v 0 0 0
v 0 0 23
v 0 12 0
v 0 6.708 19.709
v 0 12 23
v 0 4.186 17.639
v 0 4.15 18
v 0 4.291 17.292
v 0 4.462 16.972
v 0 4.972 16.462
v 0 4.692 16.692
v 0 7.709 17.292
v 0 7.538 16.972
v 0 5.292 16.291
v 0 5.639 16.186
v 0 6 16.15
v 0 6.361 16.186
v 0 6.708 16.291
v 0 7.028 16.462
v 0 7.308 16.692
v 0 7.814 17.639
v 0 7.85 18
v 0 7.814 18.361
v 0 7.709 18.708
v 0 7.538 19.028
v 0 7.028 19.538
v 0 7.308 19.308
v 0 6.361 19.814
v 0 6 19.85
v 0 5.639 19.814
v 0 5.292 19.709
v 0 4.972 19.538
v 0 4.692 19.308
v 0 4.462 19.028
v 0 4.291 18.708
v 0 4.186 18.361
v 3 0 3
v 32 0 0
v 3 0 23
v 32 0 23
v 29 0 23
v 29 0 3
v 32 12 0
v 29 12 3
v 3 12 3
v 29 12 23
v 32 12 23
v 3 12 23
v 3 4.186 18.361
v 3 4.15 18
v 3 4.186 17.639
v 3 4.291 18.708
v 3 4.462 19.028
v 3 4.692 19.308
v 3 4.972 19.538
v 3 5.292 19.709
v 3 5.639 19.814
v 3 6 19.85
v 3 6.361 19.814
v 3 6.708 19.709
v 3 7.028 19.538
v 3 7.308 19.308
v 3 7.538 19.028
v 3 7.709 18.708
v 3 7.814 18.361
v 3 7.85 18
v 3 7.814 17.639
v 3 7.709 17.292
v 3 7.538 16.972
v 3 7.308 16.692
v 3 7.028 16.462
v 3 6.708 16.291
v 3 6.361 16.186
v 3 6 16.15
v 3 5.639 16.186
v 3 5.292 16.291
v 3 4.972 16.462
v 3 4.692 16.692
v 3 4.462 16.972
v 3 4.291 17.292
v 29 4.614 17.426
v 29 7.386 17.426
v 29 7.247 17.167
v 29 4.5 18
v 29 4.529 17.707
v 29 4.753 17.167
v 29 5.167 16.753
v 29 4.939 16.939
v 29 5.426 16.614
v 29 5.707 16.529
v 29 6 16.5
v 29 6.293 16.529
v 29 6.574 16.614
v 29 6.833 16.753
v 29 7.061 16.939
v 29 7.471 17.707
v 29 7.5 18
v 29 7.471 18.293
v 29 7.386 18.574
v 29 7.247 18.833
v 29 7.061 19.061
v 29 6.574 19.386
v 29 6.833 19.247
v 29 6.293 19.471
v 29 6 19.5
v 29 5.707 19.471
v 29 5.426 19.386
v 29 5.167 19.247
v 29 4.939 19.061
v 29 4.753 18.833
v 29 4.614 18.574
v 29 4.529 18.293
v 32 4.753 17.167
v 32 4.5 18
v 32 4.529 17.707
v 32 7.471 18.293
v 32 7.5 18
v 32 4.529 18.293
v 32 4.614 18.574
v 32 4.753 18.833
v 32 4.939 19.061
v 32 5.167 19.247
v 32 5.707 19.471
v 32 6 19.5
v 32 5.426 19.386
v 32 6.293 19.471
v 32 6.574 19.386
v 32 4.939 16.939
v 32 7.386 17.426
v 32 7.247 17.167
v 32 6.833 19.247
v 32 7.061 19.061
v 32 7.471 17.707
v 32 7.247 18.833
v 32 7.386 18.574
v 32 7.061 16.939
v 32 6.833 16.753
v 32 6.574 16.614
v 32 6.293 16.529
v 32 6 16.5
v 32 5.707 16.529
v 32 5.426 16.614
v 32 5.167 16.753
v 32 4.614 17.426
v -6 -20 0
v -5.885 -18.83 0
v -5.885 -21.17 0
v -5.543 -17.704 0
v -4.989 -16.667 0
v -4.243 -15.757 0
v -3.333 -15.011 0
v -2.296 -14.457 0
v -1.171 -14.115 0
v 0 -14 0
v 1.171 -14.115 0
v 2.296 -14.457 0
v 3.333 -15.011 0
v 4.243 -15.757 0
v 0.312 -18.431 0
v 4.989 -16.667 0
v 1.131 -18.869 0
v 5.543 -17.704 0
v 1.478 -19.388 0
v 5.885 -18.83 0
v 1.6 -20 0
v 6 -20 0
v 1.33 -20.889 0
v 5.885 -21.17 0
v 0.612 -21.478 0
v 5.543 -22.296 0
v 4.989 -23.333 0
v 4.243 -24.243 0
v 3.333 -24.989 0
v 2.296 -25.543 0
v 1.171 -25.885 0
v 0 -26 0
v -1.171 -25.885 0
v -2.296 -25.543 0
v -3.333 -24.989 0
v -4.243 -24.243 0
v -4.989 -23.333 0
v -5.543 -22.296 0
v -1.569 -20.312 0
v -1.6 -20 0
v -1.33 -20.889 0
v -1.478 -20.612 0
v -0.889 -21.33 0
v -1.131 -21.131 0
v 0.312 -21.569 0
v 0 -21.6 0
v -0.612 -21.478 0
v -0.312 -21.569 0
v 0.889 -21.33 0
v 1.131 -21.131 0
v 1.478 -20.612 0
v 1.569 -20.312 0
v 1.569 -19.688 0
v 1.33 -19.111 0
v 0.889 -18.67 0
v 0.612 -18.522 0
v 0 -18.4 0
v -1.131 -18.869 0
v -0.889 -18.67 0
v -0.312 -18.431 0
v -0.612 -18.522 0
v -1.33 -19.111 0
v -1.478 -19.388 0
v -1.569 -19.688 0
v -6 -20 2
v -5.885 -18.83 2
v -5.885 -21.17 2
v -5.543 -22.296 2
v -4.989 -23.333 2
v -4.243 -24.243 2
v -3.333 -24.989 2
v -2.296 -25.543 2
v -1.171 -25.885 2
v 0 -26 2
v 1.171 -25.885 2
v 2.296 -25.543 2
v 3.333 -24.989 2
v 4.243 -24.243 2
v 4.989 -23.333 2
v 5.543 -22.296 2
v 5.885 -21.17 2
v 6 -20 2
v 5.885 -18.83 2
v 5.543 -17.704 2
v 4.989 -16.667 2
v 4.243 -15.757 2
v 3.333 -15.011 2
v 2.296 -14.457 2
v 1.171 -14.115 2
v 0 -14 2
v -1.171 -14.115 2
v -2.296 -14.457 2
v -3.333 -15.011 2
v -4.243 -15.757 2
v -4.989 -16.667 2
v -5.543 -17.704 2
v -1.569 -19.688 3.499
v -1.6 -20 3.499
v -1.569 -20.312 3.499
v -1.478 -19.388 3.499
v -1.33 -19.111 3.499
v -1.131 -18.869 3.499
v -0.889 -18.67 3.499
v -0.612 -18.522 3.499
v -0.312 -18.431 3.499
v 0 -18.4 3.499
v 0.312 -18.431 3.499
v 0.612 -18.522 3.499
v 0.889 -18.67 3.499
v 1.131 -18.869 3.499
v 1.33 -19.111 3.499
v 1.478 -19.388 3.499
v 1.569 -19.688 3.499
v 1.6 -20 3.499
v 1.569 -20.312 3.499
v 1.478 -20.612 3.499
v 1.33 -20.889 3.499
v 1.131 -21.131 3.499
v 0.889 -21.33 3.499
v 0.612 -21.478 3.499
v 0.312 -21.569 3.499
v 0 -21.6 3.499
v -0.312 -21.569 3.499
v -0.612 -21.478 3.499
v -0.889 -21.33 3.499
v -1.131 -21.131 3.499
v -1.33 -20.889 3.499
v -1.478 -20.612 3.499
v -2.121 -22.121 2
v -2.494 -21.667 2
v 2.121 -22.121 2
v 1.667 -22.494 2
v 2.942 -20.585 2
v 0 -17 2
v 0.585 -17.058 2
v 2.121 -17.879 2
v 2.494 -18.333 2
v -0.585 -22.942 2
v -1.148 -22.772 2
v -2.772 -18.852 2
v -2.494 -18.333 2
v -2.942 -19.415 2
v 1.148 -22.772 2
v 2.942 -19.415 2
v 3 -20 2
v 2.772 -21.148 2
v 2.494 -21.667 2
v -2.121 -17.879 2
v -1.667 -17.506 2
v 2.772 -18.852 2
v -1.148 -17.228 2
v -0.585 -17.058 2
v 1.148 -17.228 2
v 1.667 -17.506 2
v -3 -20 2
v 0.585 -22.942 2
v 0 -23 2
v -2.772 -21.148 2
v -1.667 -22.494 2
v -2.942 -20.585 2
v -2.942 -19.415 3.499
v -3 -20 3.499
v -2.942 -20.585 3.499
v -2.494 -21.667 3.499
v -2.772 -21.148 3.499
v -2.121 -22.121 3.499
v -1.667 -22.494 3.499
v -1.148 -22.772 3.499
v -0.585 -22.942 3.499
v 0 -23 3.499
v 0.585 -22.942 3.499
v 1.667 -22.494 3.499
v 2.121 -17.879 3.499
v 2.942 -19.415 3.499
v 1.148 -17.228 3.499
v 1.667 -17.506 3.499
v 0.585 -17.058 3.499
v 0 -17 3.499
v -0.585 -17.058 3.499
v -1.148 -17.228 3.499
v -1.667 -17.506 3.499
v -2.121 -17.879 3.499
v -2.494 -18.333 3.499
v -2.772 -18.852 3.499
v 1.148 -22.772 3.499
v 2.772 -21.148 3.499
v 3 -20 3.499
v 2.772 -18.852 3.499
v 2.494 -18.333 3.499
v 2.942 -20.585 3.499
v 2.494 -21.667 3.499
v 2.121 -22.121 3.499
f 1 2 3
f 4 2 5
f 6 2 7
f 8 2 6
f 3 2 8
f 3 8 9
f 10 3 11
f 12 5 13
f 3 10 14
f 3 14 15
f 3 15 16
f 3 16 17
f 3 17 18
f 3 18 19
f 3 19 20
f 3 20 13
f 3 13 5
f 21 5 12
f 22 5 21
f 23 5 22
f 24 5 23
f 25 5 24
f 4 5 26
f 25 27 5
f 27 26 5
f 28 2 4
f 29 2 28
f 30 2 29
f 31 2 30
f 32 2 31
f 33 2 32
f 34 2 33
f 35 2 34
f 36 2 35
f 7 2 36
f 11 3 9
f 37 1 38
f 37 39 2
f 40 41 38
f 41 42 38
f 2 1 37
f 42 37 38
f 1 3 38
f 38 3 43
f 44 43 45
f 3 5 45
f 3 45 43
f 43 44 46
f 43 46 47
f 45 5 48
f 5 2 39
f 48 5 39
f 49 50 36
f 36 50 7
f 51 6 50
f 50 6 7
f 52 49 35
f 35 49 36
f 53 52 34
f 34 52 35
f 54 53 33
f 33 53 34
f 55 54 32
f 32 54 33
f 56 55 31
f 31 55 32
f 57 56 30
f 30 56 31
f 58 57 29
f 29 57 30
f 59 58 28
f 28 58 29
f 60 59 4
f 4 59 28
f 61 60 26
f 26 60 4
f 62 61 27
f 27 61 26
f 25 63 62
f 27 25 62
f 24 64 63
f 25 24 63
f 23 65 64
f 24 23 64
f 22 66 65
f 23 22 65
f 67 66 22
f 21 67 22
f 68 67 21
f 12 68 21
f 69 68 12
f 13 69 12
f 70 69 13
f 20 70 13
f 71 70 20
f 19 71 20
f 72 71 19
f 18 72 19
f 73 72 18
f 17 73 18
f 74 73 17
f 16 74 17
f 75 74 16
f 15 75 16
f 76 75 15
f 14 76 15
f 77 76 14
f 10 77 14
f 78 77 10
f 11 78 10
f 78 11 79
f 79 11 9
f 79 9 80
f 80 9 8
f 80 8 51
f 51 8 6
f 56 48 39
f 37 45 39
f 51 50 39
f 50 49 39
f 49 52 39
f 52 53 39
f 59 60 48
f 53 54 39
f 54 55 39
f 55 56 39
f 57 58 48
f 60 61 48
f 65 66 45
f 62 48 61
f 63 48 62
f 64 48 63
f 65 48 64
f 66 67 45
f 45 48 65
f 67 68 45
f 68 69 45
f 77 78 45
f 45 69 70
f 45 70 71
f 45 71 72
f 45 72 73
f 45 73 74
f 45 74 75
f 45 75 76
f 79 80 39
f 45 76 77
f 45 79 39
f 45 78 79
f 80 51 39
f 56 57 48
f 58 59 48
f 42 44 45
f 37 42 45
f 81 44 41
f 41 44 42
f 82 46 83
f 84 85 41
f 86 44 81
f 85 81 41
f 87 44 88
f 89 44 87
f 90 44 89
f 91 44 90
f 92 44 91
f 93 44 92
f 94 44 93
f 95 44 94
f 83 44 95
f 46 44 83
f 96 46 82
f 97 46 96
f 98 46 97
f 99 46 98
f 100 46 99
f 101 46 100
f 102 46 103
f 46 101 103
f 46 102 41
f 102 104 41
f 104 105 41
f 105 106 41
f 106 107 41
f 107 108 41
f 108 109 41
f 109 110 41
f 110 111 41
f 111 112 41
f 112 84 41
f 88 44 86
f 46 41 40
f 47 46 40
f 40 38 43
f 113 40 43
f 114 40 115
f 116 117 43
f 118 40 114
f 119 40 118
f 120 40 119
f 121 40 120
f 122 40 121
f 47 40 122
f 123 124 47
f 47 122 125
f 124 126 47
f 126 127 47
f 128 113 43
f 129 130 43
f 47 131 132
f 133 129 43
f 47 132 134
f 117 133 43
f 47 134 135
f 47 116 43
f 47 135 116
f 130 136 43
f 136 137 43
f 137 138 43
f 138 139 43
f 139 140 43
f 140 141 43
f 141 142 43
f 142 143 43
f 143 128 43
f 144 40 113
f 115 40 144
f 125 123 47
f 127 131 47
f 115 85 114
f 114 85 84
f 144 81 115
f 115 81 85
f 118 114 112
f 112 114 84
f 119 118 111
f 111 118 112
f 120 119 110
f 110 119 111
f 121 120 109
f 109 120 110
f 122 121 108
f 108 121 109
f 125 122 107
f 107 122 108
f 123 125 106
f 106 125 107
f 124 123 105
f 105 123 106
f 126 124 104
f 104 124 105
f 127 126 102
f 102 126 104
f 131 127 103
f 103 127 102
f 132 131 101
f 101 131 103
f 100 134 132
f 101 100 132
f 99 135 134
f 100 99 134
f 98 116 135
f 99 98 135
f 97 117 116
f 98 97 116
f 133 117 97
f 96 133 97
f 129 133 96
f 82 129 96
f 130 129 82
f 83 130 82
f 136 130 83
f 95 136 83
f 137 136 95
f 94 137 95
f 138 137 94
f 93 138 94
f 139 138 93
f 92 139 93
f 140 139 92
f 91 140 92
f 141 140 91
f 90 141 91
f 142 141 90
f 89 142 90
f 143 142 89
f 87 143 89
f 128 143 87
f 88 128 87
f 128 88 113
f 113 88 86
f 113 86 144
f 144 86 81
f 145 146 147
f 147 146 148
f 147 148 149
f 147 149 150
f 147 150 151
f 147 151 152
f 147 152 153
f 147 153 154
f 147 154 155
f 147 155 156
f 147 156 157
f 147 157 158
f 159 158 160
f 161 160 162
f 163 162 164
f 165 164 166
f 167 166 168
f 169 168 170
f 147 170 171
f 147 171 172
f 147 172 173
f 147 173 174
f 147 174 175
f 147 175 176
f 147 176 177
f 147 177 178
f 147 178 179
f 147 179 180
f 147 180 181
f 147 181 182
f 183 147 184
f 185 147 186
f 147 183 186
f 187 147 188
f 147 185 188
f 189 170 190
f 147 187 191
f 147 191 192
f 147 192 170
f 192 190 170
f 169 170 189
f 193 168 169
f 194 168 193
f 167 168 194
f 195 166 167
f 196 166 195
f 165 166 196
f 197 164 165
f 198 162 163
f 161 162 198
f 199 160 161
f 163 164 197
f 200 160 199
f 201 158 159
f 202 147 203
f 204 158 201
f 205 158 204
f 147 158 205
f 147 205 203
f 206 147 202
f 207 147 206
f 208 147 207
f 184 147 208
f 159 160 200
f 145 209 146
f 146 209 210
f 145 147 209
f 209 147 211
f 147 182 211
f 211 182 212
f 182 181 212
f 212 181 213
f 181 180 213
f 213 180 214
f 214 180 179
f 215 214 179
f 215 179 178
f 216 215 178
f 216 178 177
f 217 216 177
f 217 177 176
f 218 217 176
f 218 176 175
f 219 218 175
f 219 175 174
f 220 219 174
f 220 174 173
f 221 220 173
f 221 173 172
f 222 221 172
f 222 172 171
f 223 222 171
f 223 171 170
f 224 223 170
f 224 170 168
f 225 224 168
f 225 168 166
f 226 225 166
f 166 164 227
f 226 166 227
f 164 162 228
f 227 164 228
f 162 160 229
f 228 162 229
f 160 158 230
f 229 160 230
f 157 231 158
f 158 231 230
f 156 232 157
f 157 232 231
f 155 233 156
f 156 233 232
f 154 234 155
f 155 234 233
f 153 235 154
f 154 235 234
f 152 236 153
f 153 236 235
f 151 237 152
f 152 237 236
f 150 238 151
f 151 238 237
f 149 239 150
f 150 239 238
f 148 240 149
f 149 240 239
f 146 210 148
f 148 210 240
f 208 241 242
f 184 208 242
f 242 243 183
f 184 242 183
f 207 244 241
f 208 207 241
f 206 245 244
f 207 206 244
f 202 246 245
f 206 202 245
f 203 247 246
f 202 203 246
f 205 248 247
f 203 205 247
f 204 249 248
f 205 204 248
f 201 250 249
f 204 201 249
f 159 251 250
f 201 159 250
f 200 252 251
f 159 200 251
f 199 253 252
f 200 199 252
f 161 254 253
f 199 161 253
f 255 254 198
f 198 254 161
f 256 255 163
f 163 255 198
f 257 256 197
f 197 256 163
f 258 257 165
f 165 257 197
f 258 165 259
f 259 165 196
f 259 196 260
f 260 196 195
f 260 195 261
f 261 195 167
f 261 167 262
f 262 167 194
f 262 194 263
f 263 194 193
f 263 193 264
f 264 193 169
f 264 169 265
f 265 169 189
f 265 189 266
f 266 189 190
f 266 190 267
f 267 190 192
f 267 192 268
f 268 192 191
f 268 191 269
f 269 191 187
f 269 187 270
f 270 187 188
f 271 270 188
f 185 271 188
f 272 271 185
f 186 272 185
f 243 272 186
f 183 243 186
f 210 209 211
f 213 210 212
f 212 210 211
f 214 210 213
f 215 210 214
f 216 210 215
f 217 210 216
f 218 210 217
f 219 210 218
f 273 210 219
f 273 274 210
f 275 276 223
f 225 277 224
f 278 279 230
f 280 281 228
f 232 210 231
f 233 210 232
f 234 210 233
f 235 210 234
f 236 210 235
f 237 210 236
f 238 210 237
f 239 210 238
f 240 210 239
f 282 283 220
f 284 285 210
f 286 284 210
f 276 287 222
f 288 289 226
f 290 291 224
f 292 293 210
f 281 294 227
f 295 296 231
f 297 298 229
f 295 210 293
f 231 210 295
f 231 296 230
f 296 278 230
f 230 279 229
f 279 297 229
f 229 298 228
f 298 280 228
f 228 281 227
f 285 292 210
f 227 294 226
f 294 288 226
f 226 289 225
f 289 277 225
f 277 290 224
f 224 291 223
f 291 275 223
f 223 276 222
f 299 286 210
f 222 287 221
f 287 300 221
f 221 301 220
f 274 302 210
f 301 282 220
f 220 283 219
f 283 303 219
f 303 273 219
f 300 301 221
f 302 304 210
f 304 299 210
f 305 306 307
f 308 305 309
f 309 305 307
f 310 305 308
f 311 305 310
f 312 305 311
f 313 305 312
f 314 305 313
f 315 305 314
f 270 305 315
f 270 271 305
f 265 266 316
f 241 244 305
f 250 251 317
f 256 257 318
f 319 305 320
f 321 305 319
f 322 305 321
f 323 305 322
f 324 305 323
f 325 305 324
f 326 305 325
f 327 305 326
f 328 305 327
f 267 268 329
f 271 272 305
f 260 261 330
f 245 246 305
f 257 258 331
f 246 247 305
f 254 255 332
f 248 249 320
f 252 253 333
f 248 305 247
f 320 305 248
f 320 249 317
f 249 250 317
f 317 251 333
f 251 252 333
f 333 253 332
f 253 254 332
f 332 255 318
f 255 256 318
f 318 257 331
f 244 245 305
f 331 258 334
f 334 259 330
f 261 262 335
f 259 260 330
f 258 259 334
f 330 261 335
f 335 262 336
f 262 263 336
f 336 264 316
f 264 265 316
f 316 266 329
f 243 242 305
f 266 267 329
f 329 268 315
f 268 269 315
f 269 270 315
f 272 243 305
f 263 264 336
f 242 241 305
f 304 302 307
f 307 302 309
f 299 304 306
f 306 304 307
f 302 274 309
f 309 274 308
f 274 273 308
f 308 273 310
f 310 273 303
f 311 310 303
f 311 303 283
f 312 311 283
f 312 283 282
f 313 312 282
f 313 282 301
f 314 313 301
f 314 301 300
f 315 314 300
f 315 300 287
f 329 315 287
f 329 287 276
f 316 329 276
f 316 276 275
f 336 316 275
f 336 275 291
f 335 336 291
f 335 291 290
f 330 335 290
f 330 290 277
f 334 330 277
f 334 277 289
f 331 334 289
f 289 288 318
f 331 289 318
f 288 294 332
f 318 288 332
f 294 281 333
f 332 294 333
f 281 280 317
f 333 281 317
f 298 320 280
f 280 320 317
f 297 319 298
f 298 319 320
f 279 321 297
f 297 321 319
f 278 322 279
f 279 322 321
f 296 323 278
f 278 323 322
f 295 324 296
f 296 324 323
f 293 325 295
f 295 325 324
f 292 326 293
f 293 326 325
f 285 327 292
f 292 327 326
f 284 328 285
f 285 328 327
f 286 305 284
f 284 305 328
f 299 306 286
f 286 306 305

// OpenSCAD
$fn=32;

eps1=0.001;
eps2 = 2*eps1;


thickness = 3;
//side_width = 12;
hole_height = 15;  // from bottom of opening.
hole_center_offset = 5;  // from top edge
opening = 29 - thickness;
hole1_diameter = 3.7;
hole2_diameter = 3;



total_length = opening + 2*thickness;
total_height = thickness + hole_height + hole_center_offset;
total_width = 12;

module u_shape() {
difference() {
  cube([total_length, total_width, total_height]);

  translate([thickness, -eps1, thickness]) cube ([opening, total_width + eps2, total_height - thickness + eps1]);
  }
}

module hole1() {
translate([-eps1, total_width/2, thickness + hole_height]) rotate([0, 90, 0]) cylinder(d=hole1_diameter, h=thickness+eps2);
}

module hole2() {
translate([total_length - thickness - eps1, total_width/2, thickness + hole_height]) 
  rotate([0, 90, 0]) 
  cylinder(d=hole2_diameter, h=thickness+eps2);
}

module rib() {
  cube([total_length, thickness, thickness + hole_height - hole_center_offset]);
}

module main() {
difference() {
  u_shape();
  hole1();
  hole2();
}
}


main();

translate([0, -20, 0]) difference() {
union() {
cylinder(d=12, h=2);
translate([0, 0, 2-eps1]) cylinder(d=6, h=1.5);
}
translate([0, 0, -eps1]) cylinder(d=3.2, h=4);
}

//translate([0, (total_width-thickness)/2, 0]) rib();
//, total_width
